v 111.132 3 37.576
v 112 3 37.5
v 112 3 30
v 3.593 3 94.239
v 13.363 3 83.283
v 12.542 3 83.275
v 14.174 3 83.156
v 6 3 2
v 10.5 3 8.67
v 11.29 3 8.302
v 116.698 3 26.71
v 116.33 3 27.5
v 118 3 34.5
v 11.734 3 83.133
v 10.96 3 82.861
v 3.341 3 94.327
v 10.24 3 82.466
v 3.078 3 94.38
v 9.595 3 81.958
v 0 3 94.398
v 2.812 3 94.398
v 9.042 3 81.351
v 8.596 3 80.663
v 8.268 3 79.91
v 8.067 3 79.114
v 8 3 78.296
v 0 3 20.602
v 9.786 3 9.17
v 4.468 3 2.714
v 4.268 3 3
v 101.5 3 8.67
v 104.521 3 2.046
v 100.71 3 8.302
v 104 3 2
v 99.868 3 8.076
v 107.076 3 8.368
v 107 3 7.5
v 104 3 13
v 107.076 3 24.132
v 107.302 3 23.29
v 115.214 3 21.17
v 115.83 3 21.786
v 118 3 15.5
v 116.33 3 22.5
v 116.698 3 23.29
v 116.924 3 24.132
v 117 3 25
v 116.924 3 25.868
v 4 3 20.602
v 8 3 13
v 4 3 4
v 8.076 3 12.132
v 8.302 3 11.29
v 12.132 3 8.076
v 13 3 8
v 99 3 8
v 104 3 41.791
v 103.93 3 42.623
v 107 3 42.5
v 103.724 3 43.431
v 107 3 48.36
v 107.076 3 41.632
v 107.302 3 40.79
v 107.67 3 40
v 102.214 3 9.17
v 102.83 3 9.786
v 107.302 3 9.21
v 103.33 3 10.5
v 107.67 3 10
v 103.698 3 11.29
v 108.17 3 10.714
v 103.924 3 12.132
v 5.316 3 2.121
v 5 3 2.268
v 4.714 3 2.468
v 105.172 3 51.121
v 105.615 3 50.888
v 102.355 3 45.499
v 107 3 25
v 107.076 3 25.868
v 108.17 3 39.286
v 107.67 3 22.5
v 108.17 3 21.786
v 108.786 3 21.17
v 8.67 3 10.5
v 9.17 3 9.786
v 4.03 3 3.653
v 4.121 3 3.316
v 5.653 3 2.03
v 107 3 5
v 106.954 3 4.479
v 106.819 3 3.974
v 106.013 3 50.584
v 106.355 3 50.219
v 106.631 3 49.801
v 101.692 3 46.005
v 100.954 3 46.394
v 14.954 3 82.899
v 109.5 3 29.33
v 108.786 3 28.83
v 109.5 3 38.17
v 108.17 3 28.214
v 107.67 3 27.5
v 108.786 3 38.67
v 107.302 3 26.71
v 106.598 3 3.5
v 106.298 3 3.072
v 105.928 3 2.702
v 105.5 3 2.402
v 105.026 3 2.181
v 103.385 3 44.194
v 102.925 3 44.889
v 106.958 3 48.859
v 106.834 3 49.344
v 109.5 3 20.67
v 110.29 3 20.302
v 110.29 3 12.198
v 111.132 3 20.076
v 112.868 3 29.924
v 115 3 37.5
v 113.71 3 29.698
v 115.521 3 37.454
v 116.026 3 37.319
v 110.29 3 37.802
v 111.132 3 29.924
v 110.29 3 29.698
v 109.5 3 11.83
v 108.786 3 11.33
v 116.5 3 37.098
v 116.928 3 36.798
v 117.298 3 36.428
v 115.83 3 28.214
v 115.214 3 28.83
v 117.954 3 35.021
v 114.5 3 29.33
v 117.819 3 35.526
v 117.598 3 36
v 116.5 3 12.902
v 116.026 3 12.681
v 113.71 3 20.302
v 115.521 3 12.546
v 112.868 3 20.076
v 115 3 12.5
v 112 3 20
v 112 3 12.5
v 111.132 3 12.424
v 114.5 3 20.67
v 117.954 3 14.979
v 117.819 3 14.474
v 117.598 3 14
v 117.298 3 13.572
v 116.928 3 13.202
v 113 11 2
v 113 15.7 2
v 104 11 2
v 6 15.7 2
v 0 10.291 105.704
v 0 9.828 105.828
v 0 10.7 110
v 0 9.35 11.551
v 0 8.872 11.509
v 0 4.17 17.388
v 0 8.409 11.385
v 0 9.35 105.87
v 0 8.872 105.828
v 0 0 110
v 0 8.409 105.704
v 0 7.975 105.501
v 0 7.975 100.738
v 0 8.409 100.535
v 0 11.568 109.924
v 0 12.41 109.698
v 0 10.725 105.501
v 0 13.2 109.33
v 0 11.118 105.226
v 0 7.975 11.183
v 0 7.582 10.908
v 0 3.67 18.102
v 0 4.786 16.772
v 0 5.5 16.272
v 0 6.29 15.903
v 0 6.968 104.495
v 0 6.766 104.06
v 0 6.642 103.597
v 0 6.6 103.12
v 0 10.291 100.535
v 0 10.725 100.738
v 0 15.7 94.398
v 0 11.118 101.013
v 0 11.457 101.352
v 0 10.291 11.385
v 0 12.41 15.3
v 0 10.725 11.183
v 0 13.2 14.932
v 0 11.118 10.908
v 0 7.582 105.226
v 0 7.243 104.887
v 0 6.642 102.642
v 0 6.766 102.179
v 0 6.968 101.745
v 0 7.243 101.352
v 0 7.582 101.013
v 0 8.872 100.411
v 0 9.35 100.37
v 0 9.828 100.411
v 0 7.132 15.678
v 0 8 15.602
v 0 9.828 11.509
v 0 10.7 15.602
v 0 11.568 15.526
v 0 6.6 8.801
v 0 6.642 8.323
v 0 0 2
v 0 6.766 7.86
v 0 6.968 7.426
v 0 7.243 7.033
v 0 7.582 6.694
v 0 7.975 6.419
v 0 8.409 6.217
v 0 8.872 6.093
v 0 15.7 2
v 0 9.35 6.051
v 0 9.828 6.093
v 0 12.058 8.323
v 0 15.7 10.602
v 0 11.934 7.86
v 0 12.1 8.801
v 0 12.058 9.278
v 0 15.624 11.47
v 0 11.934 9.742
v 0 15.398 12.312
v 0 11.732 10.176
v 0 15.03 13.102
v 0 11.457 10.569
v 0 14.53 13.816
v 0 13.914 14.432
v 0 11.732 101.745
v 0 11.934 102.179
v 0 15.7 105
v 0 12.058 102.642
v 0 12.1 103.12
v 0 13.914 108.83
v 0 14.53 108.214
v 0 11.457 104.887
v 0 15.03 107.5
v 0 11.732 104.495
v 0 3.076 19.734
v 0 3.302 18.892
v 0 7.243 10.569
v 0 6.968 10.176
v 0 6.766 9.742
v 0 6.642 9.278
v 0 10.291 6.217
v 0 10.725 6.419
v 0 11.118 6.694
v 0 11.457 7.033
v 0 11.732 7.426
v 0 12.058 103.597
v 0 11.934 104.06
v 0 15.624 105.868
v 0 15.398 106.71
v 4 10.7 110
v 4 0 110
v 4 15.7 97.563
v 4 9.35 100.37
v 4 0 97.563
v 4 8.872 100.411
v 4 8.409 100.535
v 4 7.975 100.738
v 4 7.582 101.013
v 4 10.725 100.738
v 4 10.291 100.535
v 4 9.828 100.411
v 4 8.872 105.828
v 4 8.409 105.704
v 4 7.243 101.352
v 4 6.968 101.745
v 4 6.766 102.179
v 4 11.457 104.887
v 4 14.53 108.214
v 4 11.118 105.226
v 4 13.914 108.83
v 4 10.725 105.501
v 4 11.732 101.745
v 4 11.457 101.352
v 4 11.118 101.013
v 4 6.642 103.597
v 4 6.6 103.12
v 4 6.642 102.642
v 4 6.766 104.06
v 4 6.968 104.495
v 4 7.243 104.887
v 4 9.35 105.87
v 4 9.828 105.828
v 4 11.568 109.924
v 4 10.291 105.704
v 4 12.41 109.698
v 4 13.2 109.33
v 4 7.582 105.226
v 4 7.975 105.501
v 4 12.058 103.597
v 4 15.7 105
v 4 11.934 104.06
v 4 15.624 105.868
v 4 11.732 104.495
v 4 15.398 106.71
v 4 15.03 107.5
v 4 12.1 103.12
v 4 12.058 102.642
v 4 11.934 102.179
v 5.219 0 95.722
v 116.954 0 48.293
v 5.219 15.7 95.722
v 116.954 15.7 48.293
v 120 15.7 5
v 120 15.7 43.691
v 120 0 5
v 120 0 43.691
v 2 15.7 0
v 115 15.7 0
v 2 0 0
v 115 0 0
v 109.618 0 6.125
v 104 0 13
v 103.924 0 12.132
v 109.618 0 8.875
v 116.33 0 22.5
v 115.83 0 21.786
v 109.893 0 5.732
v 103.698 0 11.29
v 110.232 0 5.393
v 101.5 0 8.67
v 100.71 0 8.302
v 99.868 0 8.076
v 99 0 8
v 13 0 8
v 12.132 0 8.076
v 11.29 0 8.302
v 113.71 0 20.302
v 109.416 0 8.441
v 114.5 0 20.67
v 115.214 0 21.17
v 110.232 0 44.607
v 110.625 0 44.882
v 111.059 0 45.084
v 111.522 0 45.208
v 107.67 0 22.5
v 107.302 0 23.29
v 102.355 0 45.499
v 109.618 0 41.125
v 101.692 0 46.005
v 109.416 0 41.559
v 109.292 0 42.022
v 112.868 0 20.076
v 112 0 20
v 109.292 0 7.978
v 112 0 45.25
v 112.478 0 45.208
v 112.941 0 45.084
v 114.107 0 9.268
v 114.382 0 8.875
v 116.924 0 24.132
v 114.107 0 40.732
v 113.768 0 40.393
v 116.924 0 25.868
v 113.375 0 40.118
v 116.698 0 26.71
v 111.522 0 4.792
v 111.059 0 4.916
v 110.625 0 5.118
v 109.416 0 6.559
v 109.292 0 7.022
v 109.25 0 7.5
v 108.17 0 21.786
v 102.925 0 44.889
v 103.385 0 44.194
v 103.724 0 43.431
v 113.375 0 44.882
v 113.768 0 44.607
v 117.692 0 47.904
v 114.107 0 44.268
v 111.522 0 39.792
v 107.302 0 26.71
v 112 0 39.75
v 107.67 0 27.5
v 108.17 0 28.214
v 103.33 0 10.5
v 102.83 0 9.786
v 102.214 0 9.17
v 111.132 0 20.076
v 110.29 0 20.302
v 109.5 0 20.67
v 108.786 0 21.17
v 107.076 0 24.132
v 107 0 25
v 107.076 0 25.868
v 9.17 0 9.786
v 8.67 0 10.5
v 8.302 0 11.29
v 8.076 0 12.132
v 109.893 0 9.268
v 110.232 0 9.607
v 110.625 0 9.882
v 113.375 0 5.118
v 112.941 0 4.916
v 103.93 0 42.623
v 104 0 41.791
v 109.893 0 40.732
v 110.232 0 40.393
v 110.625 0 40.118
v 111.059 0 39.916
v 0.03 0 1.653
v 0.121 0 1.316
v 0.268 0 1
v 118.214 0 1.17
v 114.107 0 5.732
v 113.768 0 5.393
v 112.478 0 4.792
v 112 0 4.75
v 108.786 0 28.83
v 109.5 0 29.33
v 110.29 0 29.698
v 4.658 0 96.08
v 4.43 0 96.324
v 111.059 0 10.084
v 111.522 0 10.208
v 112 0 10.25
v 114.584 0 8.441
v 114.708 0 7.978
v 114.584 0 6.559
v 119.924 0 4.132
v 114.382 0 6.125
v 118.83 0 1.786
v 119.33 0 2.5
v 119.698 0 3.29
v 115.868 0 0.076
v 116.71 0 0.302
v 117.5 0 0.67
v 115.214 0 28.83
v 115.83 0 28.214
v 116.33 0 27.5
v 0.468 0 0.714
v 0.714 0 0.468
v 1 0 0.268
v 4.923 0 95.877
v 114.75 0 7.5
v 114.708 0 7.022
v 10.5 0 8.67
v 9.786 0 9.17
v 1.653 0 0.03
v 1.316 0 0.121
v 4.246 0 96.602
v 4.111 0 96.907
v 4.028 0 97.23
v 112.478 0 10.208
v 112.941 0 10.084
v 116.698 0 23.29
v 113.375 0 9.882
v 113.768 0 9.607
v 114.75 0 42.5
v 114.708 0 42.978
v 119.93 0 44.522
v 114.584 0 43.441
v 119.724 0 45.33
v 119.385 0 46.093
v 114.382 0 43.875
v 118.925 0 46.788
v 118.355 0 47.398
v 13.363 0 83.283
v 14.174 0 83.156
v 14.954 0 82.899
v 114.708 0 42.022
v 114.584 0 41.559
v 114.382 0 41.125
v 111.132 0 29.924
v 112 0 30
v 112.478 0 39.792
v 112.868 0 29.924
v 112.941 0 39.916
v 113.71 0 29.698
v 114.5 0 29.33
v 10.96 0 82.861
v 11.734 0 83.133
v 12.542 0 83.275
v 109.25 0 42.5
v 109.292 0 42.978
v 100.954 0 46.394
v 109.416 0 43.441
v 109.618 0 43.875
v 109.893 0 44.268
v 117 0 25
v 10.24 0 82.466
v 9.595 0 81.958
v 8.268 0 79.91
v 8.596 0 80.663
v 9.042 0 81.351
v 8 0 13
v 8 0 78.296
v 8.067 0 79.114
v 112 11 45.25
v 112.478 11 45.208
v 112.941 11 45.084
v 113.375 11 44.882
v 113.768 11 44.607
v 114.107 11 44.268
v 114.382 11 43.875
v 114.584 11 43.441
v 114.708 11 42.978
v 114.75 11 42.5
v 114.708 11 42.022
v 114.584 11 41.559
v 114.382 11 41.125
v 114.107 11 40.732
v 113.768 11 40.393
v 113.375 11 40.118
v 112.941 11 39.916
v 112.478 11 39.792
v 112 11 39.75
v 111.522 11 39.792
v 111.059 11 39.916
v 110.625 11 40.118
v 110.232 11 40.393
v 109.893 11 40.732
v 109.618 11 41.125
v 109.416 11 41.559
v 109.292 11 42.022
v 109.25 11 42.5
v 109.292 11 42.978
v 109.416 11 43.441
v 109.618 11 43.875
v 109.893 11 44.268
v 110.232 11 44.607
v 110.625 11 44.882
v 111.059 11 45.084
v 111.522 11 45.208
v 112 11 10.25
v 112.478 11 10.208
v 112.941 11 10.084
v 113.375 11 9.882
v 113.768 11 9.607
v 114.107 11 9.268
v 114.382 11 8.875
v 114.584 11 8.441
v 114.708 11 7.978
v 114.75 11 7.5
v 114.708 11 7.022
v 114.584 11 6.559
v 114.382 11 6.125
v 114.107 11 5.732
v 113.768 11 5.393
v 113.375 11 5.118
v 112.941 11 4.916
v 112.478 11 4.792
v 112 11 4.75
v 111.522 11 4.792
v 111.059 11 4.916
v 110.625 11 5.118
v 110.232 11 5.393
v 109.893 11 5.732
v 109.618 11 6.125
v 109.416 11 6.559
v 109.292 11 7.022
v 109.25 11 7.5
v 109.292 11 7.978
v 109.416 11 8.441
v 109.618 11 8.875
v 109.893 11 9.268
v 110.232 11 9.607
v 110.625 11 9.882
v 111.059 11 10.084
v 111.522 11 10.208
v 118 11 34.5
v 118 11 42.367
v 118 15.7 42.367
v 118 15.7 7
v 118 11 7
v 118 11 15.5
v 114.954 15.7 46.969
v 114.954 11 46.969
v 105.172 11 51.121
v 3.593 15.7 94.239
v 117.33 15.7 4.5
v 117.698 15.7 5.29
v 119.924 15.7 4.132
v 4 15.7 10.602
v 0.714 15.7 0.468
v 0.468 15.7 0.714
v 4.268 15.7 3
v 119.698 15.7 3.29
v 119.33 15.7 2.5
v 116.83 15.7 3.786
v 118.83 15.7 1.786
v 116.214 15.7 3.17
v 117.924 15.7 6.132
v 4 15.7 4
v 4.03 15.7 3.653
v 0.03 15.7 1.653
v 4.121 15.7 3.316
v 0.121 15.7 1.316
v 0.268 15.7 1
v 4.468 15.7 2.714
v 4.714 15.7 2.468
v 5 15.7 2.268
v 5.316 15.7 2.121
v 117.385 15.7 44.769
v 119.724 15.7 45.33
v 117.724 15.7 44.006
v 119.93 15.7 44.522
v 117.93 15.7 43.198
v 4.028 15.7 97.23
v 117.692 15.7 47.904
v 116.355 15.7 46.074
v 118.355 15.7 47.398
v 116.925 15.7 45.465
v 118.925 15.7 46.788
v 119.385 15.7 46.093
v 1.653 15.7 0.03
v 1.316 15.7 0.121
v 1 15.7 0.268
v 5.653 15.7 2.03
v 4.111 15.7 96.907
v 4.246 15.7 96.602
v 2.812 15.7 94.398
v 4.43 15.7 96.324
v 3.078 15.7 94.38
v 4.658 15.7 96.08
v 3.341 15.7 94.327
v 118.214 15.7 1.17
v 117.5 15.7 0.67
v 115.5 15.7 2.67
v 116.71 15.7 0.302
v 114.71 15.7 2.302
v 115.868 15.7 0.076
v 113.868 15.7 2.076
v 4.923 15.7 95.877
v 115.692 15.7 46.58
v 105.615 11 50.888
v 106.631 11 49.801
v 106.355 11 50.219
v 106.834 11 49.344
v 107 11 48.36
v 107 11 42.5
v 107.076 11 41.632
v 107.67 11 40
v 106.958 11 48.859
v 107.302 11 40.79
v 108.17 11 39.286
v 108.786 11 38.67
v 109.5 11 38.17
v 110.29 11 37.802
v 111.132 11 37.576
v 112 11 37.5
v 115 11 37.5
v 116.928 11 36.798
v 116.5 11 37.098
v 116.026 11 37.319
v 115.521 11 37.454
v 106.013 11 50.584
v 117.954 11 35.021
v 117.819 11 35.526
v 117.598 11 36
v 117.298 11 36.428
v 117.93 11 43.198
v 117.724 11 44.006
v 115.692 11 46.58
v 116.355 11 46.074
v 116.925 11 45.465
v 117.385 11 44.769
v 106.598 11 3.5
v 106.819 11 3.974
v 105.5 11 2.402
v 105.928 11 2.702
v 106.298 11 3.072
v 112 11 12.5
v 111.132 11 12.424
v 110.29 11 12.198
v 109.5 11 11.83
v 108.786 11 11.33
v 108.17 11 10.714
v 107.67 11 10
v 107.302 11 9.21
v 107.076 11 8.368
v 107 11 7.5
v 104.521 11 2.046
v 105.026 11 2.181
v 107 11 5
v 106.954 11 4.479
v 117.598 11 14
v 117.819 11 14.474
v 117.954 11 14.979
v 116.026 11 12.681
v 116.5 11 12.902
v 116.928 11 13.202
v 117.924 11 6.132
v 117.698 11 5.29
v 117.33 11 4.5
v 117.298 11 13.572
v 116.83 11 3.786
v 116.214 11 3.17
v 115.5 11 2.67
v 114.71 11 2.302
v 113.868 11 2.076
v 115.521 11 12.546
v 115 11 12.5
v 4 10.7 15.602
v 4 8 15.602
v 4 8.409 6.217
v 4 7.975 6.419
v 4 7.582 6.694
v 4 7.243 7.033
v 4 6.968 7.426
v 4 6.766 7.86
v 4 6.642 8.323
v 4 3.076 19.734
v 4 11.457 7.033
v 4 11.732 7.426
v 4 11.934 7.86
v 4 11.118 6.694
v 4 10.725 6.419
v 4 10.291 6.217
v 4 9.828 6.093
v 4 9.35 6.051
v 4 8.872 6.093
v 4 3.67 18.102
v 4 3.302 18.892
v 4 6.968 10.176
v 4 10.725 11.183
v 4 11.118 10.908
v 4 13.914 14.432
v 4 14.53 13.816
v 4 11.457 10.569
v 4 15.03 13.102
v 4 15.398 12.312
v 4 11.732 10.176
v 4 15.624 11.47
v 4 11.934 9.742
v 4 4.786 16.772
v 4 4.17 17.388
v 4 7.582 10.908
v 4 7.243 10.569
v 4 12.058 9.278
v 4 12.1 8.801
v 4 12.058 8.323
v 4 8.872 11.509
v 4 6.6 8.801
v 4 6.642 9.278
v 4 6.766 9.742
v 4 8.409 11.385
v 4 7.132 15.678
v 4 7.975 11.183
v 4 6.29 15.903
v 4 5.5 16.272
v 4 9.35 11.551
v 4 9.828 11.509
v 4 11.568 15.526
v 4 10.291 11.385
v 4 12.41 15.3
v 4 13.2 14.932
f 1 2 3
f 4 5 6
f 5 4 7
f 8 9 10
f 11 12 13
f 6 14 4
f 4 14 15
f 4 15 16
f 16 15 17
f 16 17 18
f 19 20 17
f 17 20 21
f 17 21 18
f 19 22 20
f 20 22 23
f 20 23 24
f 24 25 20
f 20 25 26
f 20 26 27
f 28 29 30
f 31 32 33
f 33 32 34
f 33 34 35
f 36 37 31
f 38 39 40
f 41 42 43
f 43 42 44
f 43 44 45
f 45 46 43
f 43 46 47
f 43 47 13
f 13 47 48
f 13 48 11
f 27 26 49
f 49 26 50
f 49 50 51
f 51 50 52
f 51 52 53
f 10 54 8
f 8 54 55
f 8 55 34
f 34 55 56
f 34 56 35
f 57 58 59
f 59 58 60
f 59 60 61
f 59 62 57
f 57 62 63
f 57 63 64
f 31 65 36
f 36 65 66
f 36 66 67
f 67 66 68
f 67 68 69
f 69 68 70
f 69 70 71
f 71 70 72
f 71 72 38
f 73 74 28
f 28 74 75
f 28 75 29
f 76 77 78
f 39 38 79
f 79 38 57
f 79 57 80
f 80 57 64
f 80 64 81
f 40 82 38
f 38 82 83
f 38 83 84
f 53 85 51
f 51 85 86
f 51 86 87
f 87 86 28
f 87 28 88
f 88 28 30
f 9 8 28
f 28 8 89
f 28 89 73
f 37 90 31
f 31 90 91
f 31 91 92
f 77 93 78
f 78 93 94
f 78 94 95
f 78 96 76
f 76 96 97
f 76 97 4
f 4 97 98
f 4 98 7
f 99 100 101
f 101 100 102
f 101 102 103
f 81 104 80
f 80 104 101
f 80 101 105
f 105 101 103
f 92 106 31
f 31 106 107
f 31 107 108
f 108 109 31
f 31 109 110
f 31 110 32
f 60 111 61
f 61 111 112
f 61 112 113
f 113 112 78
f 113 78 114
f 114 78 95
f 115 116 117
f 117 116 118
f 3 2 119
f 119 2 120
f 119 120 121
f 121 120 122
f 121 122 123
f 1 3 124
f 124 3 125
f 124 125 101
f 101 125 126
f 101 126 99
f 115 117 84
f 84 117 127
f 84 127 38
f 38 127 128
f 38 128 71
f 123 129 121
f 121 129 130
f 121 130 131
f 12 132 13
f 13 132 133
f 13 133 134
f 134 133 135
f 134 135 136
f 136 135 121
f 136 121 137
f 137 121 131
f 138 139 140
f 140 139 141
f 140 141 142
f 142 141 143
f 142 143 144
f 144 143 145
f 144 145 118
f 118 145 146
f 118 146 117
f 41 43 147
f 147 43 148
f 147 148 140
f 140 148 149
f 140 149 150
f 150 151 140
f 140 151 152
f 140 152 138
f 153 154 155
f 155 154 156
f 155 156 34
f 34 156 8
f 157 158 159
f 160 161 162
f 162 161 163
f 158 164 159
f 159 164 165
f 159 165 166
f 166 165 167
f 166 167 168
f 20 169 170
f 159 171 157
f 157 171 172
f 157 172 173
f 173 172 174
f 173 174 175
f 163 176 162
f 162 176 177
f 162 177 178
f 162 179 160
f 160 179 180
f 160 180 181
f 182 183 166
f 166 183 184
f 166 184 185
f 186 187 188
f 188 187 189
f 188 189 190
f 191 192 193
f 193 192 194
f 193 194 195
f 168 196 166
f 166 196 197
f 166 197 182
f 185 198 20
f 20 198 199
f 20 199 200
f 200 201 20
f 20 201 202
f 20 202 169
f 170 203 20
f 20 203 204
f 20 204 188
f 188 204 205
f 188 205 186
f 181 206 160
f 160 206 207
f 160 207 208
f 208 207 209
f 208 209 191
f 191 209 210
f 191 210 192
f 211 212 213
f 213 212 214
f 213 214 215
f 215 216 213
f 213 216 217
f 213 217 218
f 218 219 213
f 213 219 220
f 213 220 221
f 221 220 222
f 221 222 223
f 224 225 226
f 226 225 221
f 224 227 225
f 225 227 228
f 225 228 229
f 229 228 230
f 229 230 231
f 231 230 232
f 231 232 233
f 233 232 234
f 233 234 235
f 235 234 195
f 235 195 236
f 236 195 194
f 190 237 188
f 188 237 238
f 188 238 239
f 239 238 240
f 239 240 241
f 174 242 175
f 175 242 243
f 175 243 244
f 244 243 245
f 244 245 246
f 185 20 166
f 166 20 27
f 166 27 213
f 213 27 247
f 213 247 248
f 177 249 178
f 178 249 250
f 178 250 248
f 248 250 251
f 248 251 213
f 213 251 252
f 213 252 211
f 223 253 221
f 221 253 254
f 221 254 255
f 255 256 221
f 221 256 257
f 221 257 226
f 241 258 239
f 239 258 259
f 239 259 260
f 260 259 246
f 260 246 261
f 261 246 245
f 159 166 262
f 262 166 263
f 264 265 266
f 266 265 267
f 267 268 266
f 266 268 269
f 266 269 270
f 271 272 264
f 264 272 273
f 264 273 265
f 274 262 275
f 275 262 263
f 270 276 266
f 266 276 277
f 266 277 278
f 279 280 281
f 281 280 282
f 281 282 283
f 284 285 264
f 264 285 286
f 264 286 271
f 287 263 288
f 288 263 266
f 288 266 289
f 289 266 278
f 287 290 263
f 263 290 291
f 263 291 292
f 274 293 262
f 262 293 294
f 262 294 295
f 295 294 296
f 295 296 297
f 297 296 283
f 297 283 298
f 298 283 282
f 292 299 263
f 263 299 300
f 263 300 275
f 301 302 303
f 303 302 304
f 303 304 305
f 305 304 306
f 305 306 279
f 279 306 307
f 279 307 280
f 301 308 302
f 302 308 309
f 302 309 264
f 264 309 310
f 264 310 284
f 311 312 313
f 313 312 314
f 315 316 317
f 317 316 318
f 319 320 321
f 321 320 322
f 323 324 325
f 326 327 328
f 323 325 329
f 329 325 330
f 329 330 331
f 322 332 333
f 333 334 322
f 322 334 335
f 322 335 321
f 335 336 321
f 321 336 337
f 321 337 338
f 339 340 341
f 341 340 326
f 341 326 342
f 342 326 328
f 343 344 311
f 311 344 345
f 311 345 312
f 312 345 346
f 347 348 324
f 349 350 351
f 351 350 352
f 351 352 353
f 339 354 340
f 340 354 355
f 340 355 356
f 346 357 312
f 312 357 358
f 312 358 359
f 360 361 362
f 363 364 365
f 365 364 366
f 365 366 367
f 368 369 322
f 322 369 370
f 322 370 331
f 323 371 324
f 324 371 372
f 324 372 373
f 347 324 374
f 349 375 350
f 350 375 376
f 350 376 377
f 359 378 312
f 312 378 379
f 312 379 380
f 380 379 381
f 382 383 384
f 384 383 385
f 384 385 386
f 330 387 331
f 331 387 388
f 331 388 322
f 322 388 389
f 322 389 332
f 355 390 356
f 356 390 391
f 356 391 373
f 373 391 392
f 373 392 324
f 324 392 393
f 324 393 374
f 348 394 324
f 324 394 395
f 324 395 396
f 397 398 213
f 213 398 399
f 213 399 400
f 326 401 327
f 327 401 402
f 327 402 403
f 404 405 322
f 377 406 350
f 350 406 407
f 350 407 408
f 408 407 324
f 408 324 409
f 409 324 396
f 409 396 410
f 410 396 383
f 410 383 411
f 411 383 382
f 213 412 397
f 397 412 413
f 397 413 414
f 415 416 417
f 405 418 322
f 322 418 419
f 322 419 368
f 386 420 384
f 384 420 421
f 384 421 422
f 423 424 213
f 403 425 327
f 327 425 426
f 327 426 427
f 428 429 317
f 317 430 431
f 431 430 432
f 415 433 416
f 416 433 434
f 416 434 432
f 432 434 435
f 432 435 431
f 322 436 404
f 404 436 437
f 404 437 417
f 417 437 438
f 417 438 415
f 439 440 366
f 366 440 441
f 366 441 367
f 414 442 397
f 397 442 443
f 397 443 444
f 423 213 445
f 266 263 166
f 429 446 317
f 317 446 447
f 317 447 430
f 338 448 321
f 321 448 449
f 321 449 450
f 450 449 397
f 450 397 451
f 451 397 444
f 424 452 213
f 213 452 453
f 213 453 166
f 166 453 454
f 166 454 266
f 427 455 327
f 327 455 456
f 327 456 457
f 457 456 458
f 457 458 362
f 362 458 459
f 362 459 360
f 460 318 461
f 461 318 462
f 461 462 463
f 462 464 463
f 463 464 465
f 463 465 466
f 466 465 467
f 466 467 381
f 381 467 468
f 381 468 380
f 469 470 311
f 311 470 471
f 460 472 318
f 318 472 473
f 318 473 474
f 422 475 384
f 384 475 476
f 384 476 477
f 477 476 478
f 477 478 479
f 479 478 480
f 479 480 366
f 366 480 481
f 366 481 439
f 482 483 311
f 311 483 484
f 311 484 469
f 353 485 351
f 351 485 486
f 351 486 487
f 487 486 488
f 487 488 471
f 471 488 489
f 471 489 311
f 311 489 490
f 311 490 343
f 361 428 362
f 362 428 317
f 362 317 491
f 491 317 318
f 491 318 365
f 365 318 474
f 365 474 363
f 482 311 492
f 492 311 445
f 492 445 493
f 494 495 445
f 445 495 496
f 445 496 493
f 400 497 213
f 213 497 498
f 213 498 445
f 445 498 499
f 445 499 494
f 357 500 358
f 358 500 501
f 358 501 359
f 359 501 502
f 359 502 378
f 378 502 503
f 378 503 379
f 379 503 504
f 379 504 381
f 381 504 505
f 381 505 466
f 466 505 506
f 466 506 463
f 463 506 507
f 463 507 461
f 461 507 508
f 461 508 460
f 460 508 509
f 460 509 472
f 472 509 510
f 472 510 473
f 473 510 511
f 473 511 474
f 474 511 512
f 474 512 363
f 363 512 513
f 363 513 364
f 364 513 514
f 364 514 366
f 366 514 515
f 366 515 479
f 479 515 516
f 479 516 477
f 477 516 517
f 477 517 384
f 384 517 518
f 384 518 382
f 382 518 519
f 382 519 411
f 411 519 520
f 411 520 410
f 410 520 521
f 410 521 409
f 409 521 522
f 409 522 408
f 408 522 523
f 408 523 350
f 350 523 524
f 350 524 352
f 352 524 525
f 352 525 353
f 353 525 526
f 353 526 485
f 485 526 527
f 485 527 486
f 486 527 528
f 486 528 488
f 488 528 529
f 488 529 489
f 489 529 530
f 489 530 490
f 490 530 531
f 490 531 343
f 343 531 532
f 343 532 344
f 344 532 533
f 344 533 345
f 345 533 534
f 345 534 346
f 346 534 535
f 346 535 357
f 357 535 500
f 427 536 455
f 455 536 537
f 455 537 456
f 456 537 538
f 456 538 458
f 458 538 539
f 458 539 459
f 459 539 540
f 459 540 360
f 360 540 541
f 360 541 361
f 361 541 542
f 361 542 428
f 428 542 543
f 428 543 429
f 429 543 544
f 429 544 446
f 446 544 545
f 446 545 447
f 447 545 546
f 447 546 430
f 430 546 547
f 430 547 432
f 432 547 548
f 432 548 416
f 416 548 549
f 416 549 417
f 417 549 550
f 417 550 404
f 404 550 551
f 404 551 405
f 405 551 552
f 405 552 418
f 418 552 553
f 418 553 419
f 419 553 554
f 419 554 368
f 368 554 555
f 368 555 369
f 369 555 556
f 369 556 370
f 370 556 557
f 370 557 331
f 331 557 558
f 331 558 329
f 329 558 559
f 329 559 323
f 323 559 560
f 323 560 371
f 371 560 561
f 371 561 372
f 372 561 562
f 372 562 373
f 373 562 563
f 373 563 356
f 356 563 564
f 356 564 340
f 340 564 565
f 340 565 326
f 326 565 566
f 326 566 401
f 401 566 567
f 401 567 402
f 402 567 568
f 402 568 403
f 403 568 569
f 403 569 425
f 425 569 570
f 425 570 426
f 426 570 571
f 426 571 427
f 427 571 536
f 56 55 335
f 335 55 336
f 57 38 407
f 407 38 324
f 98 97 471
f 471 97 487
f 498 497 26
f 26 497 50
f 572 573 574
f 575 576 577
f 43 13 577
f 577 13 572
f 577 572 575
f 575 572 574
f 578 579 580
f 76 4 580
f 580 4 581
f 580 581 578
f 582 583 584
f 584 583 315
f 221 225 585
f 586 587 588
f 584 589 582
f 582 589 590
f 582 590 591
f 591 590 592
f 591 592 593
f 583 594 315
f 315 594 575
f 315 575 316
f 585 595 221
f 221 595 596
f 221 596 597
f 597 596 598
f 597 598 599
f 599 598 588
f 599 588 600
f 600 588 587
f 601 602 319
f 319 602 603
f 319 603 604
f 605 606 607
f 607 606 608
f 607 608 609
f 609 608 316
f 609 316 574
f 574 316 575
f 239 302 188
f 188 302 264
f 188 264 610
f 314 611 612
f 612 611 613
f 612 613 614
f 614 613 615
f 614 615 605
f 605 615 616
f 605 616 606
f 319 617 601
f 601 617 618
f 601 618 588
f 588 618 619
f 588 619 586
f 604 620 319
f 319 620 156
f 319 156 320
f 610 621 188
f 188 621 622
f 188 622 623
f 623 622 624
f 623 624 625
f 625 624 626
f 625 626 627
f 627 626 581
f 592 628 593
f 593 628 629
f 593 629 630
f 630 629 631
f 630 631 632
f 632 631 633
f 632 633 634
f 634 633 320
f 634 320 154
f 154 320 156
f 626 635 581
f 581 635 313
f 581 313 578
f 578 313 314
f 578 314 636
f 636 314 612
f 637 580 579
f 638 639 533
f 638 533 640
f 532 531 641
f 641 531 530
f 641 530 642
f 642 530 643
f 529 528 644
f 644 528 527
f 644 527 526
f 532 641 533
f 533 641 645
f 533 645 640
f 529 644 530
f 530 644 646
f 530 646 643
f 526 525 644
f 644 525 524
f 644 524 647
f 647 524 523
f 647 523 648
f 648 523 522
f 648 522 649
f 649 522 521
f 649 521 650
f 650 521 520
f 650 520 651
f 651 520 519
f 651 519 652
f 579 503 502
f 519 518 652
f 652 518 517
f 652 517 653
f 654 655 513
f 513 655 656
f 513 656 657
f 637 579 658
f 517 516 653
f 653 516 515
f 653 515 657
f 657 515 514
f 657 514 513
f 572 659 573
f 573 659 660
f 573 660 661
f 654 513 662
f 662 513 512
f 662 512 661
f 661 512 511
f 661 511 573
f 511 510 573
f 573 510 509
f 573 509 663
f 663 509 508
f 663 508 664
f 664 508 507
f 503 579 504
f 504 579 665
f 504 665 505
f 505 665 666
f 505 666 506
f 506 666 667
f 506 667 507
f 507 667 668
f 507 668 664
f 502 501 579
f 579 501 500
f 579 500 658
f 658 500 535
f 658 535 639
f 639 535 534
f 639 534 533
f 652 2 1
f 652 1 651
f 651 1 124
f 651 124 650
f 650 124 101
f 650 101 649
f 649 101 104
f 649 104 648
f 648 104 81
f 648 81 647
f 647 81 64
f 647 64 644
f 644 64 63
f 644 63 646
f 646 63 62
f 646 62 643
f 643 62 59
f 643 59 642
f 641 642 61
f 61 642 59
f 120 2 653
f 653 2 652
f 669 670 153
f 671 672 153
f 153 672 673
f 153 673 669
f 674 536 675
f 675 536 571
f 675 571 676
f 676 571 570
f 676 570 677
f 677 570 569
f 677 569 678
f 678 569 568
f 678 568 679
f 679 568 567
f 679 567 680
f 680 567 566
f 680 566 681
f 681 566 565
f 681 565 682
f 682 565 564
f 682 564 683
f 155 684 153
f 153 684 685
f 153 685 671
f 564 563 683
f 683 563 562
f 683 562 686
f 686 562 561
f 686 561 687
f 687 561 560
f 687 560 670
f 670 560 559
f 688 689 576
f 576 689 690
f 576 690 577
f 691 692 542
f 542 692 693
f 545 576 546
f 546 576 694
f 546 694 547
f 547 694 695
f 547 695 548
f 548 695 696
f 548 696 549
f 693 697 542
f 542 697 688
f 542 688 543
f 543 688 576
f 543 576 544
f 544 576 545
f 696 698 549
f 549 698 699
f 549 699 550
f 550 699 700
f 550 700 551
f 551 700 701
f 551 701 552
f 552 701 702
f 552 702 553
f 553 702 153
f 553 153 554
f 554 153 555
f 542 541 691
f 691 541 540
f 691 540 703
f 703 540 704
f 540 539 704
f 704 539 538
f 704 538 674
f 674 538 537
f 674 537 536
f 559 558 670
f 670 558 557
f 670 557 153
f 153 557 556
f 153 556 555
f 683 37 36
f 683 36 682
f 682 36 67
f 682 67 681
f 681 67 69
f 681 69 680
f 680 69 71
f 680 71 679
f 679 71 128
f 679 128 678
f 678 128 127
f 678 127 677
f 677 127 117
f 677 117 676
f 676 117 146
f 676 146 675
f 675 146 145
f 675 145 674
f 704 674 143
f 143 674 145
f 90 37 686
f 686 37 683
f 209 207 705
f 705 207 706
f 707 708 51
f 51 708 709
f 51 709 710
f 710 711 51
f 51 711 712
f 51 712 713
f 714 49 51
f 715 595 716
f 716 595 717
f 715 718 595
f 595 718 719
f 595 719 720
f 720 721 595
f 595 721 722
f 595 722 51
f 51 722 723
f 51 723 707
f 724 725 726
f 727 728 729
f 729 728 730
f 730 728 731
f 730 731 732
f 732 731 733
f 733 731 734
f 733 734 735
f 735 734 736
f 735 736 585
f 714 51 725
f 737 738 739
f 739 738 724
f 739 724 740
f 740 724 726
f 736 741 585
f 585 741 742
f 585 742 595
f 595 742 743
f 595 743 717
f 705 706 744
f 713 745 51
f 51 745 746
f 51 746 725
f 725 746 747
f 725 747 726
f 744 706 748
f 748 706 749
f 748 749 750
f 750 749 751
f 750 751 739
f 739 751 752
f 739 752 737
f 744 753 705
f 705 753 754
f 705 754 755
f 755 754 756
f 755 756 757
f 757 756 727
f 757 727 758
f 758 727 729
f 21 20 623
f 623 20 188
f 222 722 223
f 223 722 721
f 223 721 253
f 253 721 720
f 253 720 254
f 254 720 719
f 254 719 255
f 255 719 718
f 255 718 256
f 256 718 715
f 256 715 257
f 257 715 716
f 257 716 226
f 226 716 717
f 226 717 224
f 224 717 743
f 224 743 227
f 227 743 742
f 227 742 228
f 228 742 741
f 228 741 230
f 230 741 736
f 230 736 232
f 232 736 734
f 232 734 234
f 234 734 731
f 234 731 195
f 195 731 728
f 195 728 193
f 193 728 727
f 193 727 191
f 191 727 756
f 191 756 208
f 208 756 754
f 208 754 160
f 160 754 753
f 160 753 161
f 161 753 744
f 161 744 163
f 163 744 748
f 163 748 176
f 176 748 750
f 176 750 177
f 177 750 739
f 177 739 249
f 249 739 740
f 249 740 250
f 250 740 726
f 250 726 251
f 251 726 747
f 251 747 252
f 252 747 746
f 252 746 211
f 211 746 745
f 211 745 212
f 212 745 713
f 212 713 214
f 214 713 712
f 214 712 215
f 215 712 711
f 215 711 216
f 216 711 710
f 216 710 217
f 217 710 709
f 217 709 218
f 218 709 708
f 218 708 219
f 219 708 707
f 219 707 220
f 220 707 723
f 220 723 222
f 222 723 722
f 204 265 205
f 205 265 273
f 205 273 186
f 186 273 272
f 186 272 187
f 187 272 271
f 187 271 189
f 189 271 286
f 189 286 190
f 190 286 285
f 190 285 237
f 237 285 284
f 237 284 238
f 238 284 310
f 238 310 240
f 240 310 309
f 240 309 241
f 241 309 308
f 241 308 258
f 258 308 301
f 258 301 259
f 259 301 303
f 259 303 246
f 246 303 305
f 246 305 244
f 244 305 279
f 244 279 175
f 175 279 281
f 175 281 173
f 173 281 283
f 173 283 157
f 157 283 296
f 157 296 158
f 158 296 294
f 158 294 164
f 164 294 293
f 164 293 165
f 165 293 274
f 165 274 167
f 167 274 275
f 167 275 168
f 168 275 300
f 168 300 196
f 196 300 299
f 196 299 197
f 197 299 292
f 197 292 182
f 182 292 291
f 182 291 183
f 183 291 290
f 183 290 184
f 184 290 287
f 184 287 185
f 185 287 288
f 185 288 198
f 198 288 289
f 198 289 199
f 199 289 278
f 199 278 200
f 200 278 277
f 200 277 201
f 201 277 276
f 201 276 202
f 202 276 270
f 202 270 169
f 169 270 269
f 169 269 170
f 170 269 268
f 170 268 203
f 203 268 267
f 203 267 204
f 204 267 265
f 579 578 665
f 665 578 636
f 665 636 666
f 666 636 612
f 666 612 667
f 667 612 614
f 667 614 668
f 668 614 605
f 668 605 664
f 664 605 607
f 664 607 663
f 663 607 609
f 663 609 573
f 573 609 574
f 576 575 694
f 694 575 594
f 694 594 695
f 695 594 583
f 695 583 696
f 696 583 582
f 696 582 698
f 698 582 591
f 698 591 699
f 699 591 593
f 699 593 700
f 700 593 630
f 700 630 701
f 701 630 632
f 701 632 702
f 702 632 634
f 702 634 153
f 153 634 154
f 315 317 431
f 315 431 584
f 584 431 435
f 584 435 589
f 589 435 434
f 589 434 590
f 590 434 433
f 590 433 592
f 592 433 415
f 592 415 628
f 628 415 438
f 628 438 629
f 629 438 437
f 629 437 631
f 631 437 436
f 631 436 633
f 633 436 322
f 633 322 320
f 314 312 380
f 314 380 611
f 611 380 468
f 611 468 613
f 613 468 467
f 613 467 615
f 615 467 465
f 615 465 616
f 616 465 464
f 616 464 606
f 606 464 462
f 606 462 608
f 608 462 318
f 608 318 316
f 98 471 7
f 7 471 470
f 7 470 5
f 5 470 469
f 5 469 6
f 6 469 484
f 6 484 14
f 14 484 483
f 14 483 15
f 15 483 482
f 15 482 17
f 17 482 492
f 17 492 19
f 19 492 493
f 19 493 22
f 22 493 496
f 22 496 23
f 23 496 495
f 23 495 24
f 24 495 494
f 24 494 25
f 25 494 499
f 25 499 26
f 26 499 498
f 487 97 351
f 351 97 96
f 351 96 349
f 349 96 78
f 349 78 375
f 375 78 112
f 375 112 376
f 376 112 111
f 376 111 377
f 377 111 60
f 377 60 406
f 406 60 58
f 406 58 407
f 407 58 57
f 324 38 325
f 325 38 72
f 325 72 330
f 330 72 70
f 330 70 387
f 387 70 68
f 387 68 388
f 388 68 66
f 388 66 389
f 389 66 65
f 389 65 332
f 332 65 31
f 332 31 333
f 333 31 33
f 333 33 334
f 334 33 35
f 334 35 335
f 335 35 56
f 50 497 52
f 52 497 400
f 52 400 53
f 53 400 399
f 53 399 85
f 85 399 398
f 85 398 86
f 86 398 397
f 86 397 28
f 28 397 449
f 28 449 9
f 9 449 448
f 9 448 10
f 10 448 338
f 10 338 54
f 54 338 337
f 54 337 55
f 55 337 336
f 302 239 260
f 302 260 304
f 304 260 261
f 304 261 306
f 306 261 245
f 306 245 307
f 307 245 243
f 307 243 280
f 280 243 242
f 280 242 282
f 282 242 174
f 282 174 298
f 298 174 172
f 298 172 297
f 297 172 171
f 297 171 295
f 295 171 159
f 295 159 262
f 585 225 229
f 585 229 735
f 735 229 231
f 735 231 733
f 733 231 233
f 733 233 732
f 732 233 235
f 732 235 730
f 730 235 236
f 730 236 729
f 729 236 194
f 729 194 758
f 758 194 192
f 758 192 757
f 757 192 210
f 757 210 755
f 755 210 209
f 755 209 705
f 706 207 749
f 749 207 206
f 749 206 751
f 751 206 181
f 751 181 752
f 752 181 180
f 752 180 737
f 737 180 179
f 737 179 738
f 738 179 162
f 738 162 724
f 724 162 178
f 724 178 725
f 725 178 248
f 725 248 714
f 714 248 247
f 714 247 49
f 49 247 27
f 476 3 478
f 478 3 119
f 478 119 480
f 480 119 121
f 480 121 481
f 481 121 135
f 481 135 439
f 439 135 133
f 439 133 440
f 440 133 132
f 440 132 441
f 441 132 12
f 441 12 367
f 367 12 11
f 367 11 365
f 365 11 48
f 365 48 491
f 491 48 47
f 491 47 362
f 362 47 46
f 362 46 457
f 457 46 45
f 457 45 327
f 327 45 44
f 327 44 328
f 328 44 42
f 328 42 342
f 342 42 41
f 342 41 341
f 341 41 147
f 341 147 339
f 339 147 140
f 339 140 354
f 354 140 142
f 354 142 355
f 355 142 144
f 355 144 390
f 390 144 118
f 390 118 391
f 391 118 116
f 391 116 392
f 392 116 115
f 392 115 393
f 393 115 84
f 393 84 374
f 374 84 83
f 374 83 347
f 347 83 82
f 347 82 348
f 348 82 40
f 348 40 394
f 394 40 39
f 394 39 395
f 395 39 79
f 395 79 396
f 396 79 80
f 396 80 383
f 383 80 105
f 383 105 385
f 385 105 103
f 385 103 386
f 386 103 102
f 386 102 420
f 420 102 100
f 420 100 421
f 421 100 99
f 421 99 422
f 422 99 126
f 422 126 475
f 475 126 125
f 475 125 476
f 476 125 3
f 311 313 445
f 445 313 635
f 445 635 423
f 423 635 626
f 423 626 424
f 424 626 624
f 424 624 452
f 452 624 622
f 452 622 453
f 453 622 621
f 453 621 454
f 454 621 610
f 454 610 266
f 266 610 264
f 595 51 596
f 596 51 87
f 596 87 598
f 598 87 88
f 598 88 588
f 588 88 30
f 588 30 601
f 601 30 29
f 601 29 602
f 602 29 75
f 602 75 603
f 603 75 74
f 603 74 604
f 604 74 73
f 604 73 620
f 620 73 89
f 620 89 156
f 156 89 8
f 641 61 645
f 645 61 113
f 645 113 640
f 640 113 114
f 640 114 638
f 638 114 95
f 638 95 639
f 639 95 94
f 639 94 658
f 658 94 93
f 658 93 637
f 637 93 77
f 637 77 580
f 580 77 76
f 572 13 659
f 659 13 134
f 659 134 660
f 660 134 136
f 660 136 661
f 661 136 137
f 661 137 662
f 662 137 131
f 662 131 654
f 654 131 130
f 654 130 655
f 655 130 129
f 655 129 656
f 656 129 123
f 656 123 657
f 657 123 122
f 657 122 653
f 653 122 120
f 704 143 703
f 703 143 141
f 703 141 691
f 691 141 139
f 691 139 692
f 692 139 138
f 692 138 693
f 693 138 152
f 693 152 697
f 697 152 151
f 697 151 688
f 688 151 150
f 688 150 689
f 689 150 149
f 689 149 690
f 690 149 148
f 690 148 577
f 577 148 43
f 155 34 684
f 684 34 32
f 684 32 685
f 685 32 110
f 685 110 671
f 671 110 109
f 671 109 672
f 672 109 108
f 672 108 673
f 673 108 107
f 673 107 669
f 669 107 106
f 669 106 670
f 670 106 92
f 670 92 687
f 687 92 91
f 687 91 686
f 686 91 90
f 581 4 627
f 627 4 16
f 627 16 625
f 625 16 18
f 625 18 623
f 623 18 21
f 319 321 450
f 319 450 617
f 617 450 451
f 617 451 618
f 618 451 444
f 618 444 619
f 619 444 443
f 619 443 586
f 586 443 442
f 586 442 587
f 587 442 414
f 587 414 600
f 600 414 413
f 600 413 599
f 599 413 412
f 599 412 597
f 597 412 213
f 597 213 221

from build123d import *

# Parameters (mm, degrees)
BOSS_EXTRUDE1_DEPTH = 3
SKETCH2_R           = 2.75
CUT_EXTRUDE3_DEPTH  = 163.815846895
BOSS_EXTRUDE3_DEPTH = 12.7
BOSS_EXTRUDE4_START = 8
SKETCH8_R           = 2.75
BOSS_EXTRUDE4_DEPTH = 8
SKETCH9_W           = 4
SKETCH9_H           = 15.601931027
BOSS_EXTRUDE5_DEPTH = 12.7
SKETCH10_R          = 2.75
CUT_EXTRUDE4_DEPTH  = 110.875
FILLET3_R           = 5
SKETCH11_R          = 5
CUT_EXTRUDE5_DEPTH  = 15.875
FILLET4_R           = 2
FILLET5_R           = 3
FILLET7_R           = 2


with BuildPart() as part:
    # Sketch1 → Boss-Extrude1 (new body)
    with BuildSketch(Plane(origin=(0, 0, 0), x_dir=(1, 0, 0), z_dir=(0, 1, 0))):
        Polygon((0, 0), (120, 0), (120, -47), (4, -96.23907868), (4, -110), (0, -110), align=None)
    extrude(amount=BOSS_EXTRUDE1_DEPTH)

    # Sketch2 → Cut-Extrude3 (cut, through all)
    with BuildSketch(Plane(origin=(0, 3, 0), x_dir=(1, 0, 0), z_dir=(0, 1, 0))):
        with Locations(Location((112, -7.5, 0), (0, 0, 270))):
            Circle(SKETCH2_R)
        with Locations(Location((112, -42.5, 0), (0, 0, 270))):
            Circle(SKETCH2_R)
        Polygon((104, -8), (104, -45.10071404), (8, -85.850296396), (8, -8), align=None)
    extrude(amount=-CUT_EXTRUDE3_DEPTH, mode=Mode.SUBTRACT)

    # Sketch7 → Boss-Extrude3 (add)
    with BuildSketch(Plane(origin=(0, 3, 0), x_dir=(1, 0, 0), z_dir=(0, 1, 0))):
        Polygon((118, -45.676228878), (3.218537743, -94.398068973), (4, -96.23907868), (120, -47), (120, 0), (3.218537743, 0), (3.218537743, -2), (118, -2), align=None)
    extrude(amount=BOSS_EXTRUDE3_DEPTH)

    # Sketch8 → Boss-Extrude4 (add)
    # profile 1 of 2: a face of its own
    with BuildSketch(Plane(origin=(0, 3, 0), x_dir=(1, 0, 0), z_dir=(0, 1, 0)).offset(BOSS_EXTRUDE4_START)):
        with BuildLine():
            Line((112, -12.5), (118, -12.5))
            Line((118, -12.5), (118, -2))
            Line((118, -2), (107, -2))
            Line((107, -2), (107, -7.5))
            ThreePointArc((107, -7.5), (108.464466094, -11.035533906), (112, -12.5))
        make_face()
        with Locations(Location((112, -7.5, 0), (0, 0, 270))):
            Circle(SKETCH8_R, mode=Mode.SUBTRACT)
    # profile 2 of 2: a face of its own
    with BuildSketch(Plane(origin=(0, 3, 0), x_dir=(1, 0, 0), z_dir=(0, 1, 0)).offset(BOSS_EXTRUDE4_START)):
        with BuildLine():
            Line((112, -37.5), (118, -37.5))
            Line((118, -37.5), (118, -45.676228878))
            Line((118, -45.676228878), (107, -50.345451856))
            Line((107, -50.345451856), (107, -42.5))
            ThreePointArc((107, -42.5), (108.464466094, -38.964466094), (112, -37.5))
        make_face()
        with Locations(Location((112, -42.5, 0), (0, 0, 270))):
            Circle(SKETCH8_R, mode=Mode.SUBTRACT)
    extrude(amount=-BOSS_EXTRUDE4_DEPTH)

    # Sketch9 → Boss-Extrude5 (add)
    with BuildSketch(Plane(origin=(0, 3, 0), x_dir=(1, 0, 0), z_dir=(0, 1, 0))):
        with Locations((2, -7.800965514)):
            Rectangle(SKETCH9_W, SKETCH9_H)
        with Locations((2, -102.199034487)):
            Rectangle(SKETCH9_W, SKETCH9_H)
    extrude(amount=BOSS_EXTRUDE5_DEPTH)

    # Sketch10 → Cut-Extrude4 (cut)
    with BuildSketch(Plane(origin=(4, 0, 0), x_dir=(0, 0, -1), z_dir=(1, 0, 0))):
        with Locations((-8.800965513, 9.35)):
            Circle(SKETCH10_R)
        with Locations((-103.11953934, 9.35)):
            Circle(SKETCH10_R)
    extrude(amount=-CUT_EXTRUDE4_DEPTH, mode=Mode.SUBTRACT)

    # Fillet3
    fillet3_edges = [part.edges().sort_by_distance(p)[0] for p in [
        (120, 7.85, 0),
        (120, 7.85, 47),
        (2, 3, 15.601931027),
        (2, 15.7, 15.601931027),
        (2, 15.7, 110),
        (8, 1.5, 8),
        (104, 1.5, 8),
        (104, 1.5, 45.10071404),
        (8, 1.5, 85.850296396),
        (118, 13.35, 2),
        (118, 13.35, 45.676228878),
    ]]
    fillet(fillet3_edges, radius=FILLET3_R)

    # Sketch11 → Cut-Extrude5 (cut)
    with BuildSketch(Plane(origin=(0, 3, 0), x_dir=(1, 0, 0), z_dir=(0, 1, 0))):
        with Locations(Location((112, -25, 0), (0, 0, 270))):
            Circle(SKETCH11_R)
    extrude(amount=-CUT_EXTRUDE5_DEPTH, mode=Mode.SUBTRACT)

    # Fillet4
    fillet4_edges = [part.edges().sort_by_distance(p)[0] for p in [
        (4, 7.85, 96.23907868),
        (4, 9.35, 2),
    ]]
    fillet(fillet4_edges, radius=FILLET4_R)

    # Fillet5
    fillet5_edges = [part.edges().sort_by_distance(p)[0] for p in [
        (107, 7, 50.345451856),
        (118, 7, 37.5),
        (118, 7, 12.5),
        (107, 7, 2),
    ]]
    fillet(fillet5_edges, radius=FILLET5_R)

    # Fillet7
    fillet7_edges = [part.edges().sort_by_distance(p)[0] for p in [
        (0, 7.85, 0),
        (3.218537743, 9.35, 94.398068973),
    ]]
    fillet(fillet7_edges, radius=FILLET7_R)


solid = part.part
